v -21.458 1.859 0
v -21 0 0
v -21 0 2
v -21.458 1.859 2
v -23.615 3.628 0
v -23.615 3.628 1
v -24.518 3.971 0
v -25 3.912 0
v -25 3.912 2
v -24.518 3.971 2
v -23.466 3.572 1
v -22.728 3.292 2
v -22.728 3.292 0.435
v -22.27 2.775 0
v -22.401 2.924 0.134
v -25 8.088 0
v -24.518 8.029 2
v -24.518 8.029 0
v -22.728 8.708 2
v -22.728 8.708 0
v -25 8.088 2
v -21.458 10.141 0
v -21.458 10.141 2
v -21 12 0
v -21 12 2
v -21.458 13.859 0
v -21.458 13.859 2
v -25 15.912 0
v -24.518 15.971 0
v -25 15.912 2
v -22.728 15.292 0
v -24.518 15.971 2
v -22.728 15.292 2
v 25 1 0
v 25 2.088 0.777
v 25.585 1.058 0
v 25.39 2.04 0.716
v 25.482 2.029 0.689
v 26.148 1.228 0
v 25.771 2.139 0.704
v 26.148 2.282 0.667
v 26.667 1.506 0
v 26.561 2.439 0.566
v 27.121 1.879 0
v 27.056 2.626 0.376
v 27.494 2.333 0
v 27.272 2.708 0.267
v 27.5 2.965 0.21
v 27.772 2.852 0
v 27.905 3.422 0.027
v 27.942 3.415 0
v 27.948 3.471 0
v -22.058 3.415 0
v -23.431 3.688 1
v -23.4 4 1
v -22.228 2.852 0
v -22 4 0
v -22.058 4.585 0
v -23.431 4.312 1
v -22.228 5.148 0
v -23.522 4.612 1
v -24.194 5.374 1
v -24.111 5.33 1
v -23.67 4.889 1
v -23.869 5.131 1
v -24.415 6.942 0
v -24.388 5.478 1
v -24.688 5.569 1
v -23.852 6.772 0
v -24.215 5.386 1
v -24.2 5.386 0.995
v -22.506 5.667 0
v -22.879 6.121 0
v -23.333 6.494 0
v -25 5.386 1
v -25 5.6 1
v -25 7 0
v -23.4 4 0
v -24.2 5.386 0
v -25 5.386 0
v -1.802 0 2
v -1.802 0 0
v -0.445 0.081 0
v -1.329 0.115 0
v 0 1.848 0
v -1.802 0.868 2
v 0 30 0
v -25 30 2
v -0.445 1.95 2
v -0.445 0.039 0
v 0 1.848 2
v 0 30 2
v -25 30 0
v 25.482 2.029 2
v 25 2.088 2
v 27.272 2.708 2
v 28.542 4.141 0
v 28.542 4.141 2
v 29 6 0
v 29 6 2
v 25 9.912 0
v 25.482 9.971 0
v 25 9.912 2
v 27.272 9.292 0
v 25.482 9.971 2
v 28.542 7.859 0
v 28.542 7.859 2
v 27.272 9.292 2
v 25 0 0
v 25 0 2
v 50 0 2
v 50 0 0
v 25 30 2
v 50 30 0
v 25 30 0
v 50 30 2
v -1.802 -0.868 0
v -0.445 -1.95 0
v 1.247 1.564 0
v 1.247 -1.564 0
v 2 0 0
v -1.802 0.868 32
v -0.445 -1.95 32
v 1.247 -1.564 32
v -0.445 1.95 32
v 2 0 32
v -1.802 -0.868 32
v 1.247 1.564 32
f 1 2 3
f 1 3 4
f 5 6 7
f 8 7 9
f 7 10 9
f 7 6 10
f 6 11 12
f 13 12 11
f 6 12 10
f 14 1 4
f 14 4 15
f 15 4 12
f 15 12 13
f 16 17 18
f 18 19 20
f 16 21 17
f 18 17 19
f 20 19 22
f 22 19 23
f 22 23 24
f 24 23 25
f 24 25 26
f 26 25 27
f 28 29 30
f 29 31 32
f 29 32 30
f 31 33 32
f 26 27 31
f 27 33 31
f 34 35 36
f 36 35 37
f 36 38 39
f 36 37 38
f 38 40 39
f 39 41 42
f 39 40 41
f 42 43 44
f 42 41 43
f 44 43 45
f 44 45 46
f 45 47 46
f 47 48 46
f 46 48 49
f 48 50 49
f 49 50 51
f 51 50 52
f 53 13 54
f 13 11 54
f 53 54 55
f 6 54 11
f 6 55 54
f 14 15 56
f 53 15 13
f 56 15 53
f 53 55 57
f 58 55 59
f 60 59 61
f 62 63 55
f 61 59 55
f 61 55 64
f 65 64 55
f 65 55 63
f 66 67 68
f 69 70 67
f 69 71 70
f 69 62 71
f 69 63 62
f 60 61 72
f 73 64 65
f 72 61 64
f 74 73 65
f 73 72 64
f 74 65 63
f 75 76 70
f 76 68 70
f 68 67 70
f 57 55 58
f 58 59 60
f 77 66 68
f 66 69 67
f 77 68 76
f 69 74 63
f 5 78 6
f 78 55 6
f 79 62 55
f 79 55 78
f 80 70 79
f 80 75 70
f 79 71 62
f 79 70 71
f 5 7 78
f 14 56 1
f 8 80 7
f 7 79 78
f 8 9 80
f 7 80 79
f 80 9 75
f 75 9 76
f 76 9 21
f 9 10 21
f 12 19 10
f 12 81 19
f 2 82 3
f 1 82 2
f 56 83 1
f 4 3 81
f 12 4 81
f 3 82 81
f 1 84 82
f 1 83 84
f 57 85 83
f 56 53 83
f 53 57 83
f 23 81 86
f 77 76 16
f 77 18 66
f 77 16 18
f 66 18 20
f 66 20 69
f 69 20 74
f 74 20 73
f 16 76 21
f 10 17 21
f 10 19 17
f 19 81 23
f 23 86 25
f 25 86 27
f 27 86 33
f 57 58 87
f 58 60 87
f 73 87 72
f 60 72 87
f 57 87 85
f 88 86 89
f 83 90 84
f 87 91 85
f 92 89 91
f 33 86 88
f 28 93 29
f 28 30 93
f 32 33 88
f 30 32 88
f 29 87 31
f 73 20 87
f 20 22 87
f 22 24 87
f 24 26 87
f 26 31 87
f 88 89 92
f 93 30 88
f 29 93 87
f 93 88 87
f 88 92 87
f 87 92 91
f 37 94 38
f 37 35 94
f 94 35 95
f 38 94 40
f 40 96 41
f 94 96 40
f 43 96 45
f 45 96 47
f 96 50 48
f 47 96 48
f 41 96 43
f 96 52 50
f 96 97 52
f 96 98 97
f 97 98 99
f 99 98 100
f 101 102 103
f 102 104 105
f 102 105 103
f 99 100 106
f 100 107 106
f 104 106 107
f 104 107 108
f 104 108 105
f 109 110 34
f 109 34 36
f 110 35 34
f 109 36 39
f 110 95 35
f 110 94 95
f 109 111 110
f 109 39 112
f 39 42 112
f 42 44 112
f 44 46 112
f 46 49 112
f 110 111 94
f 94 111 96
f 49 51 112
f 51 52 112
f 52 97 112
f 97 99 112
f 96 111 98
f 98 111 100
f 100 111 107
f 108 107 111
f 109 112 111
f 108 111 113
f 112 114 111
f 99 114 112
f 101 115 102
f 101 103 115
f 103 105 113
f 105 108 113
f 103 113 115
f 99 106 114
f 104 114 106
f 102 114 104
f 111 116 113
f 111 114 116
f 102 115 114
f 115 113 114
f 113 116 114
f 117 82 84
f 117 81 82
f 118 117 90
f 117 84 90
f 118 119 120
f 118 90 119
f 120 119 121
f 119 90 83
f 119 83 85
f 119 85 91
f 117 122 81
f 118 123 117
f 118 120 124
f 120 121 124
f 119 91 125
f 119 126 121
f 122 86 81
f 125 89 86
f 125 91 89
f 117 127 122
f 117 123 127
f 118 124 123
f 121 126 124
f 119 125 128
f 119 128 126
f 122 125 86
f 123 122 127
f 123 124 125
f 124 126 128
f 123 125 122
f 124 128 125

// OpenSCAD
// 家具用小型バット蝶番 (180°開き)
// 3 パーツ構成：左板、右板、ピン軸

module hinge_part_left() {
    // 左板 (鉄板形状：30mm x 25mm x 2mm)
    // 縦 30mm (Y 軸) がピン軸に沿う
    // 横 25mm (X 軸) が回転で開く方向
    // 位置：X < 0 側
    difference() {
        // 本体
        translate([-25, 0, 0]) {
            cube([25, 30, 2], center = [0, 0, 0]);
        }
        
        // 筒部 (knuckle) 3 つ (OD 8mm, ID 4.6mm, 厚さ 2mm)
        // 縦 30mm を 5 等分 (各 6mm)
        // 左板は外側 2 個 + 中央 1 個 (Y: -15..-9, -3..3, 9..15)
        // 筒部は板の端 (X=-25) に配置
        for (y = [-15, -3, 9]) {
            translate([-25, y + 3, 0]) {
                cylinder(r = 4, h = 2);
            }
        }
        
        // M3 皿穴 3 つ
        // 位置：板の端 (X = -25mm), Y = -12, -4, 4mm
        for (y = [-12, -4, 4]) {
            // 皿穴：表面から直径 6mm x 深さ 1mm テーパ + 直径 3.2mm 貫通穴
            // Z = 0 中心，板厚 2mm
            translate([-25, y, 0]) {
                difference() {
                    // テーパ穴
                    cylinder(h = 1, r1 = 3, r2 = 1.6, $fn = 32);
                    // 貫通穴
                    cylinder(h = 2, r = 1.6);
                }
            }
        }
    }
}

module hinge_part_right() {
    // 右板 (鉄板形状：30mm x 25mm x 2mm)
    // 位置：X > 0 側
    difference() {
        // 本体
        translate([25, 0, 0]) {
            cube([25, 30, 2], center = [0, 0, 0]);
        }
        
        // 筒部 (knuckle) 2 つ (OD 8mm, ID 4.6mm, 厚さ 2mm)
        // 縦 30mm を 5 等分 (各 6mm)
        // 右板は中間 2 個 (Y: -9..-3, 3..9)
        // 筒部は板の端 (X=25) に配置
        for (y = [-9, 3]) {
            translate([25, y + 3, 0]) {
                cylinder(r = 4, h = 2);
            }
        }
        
        // M3 皿穴 3 つ
        // 位置：板の端 (X = 25mm), Y = -12, -4, 4mm
        for (y = [-12, -4, 4]) {
            // 皿穴
            translate([25, y, 0]) {
                difference() {
                    // テーパ穴
                    cylinder(h = 1, r1 = 3, r2 = 1.6, $fn = 32);
                    // 貫通穴
                    cylinder(h = 2, r = 1.6);
                }
            }
        }
    }
}

module hinge_pin() {
    // ピン軸 (直径 4mm, 長さ 32mm)
    // 両端 1mm ずつ knuckle から飛び出す
    // knuckle 全体 30mm (-15..15) なので、ピンは -16..16
    cylinder(h = 32, r = 2, center = [0, 0, 0]);
}

difference() {
    union() {
        hinge_part_left();
        hinge_part_right();
        hinge_pin();
    }
}
